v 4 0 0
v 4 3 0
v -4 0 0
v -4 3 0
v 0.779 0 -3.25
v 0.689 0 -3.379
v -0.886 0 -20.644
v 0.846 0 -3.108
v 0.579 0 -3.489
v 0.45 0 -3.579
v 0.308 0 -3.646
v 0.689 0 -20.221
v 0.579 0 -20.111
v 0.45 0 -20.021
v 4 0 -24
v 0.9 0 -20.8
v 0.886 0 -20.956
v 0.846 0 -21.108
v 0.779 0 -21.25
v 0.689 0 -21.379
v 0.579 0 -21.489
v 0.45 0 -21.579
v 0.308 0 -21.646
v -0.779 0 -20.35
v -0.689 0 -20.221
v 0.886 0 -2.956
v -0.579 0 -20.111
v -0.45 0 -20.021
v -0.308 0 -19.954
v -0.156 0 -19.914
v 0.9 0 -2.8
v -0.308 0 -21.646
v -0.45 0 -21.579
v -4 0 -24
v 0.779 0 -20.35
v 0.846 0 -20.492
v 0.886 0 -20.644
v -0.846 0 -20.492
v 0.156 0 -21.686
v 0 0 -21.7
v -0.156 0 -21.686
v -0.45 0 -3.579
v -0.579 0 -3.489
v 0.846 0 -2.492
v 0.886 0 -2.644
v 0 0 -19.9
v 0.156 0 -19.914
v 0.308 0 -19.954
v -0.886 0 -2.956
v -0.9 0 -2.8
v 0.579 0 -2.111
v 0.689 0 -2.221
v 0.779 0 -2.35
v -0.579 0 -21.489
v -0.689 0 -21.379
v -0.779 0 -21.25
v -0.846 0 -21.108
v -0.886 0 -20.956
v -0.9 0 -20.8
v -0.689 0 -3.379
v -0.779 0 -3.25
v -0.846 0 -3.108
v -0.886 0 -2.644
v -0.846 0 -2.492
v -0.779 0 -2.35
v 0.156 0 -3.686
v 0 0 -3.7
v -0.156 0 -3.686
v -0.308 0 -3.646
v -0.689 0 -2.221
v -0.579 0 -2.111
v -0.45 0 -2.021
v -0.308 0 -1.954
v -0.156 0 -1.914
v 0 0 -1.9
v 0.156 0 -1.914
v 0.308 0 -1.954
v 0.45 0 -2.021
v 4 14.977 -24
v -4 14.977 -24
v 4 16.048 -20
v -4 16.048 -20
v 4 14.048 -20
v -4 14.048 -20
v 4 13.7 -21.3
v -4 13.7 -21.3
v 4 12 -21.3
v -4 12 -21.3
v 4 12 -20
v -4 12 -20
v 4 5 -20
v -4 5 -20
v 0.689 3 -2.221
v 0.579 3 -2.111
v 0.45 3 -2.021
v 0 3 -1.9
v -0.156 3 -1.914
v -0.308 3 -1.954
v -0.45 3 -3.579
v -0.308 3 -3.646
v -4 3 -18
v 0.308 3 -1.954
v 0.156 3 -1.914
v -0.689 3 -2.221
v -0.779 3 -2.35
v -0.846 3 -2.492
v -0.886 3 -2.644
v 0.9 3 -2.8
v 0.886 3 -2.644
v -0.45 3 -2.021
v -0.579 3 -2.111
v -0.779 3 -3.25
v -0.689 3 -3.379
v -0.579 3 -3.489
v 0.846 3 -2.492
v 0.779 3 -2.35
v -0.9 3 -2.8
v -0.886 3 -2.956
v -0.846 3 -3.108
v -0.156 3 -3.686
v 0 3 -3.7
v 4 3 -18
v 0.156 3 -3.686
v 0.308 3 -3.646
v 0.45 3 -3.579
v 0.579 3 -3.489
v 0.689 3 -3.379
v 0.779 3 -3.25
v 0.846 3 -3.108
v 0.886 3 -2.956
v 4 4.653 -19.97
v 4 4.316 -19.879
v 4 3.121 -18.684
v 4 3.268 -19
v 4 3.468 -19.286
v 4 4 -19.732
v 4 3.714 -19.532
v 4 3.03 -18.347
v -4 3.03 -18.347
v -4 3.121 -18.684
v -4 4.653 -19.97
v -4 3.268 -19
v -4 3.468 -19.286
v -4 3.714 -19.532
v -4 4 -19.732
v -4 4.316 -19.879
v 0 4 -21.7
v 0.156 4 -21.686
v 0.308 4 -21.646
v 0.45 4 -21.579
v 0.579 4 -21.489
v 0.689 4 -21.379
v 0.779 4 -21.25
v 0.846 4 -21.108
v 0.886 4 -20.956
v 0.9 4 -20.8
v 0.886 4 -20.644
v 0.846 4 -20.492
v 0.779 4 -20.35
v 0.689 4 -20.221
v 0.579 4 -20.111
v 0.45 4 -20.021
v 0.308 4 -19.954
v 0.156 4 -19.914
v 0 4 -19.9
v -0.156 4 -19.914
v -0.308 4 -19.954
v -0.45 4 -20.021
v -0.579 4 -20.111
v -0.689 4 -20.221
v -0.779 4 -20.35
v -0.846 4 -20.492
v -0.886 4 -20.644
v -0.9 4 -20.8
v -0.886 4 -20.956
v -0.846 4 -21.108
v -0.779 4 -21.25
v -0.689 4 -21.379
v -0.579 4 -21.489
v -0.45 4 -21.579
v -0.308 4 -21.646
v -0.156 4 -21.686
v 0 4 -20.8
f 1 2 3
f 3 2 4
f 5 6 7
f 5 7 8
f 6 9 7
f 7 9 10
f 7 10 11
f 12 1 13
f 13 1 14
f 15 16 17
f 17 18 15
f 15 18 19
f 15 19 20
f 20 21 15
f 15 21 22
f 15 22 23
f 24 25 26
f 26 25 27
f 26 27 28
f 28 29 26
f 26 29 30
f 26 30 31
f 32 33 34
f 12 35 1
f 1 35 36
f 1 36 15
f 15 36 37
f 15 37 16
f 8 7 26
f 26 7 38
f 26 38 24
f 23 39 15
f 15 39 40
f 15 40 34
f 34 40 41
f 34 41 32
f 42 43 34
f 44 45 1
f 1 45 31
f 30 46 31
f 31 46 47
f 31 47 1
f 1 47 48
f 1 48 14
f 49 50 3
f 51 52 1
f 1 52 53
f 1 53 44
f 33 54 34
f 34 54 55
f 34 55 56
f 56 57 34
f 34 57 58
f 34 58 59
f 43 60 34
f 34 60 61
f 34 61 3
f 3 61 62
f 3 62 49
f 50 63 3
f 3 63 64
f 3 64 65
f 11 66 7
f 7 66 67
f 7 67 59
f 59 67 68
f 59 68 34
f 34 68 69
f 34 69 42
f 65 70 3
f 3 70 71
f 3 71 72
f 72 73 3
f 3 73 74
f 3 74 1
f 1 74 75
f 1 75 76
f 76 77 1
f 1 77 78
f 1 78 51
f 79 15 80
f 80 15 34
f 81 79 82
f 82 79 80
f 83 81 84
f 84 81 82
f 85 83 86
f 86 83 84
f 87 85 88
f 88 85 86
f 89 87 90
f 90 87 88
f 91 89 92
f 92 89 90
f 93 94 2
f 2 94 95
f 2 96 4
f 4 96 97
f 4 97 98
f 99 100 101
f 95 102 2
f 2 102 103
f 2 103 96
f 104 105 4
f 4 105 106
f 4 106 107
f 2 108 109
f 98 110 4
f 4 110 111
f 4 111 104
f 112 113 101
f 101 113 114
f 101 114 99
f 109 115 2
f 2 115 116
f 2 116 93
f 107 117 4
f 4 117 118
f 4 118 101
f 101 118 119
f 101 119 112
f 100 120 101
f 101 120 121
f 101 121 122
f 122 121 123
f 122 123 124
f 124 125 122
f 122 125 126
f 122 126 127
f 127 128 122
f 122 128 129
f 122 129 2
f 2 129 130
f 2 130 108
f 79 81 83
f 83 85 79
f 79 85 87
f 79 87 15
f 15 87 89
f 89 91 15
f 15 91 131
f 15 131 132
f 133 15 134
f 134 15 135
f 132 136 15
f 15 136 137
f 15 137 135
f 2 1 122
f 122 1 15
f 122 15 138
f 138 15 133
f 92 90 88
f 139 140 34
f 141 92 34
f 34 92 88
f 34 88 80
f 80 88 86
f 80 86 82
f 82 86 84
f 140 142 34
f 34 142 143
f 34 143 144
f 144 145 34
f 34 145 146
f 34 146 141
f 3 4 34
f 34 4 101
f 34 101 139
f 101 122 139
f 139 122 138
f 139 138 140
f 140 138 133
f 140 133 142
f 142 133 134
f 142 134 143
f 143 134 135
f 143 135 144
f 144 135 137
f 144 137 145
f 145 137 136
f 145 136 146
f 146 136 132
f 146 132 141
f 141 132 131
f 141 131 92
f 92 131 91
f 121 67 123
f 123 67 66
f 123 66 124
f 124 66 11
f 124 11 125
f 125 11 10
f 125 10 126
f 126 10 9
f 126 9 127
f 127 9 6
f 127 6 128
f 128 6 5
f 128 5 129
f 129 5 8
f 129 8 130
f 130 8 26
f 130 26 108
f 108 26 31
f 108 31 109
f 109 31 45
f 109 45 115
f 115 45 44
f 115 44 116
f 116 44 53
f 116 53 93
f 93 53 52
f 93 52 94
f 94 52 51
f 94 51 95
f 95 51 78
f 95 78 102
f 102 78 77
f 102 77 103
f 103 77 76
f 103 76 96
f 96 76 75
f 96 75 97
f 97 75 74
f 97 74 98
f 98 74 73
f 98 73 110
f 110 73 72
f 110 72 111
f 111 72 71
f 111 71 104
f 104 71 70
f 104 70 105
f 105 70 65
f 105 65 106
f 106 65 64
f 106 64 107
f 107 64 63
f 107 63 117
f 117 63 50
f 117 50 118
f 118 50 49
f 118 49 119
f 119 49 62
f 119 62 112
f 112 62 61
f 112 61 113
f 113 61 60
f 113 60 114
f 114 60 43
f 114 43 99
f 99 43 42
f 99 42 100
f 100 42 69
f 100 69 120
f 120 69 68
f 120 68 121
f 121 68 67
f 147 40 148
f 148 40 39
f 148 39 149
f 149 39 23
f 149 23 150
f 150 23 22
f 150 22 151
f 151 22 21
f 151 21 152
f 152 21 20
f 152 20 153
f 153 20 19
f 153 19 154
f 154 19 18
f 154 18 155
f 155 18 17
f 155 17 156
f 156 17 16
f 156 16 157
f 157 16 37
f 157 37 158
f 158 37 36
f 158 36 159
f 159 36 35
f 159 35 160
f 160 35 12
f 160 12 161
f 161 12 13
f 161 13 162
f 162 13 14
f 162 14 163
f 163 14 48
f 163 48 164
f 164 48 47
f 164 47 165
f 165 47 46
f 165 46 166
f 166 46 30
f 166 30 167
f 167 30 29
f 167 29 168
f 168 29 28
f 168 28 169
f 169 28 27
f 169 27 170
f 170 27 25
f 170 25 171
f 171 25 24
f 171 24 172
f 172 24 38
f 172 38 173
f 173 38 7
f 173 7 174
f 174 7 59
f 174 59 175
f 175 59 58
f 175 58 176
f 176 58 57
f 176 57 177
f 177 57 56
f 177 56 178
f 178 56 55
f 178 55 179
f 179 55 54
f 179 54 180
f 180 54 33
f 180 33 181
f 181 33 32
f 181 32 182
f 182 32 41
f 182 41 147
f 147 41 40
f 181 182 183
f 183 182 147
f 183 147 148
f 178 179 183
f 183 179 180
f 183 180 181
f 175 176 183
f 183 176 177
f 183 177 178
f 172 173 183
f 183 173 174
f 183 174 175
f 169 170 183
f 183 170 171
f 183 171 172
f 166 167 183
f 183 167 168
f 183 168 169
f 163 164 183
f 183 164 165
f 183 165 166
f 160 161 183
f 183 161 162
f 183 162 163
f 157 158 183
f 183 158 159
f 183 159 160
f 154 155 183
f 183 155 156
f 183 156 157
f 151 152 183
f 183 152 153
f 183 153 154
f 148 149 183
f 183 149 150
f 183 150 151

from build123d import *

# Parameters (mm, degrees)
BOSS_EXTRUDE1_DEPTH = 4
FILLET1_R           = 2
SKETCH2_R           = 0.9
CUT_EXTRUDE1_DEPTH  = 4


with BuildPart() as part:
    # Sketch1 → Boss-Extrude1 (new, symmetric)
    with BuildSketch(Plane(origin=(0, 0, 0), x_dir=(0, 0, -1), z_dir=(1, 0, 0))):
        Polygon((0, 3), (20, 3), (20, 12), (21.3, 12), (21.3, 13.7), (20, 14.04833395), (20, 16.04833395), (24, 14.97653718), (24, 0), (0, 0), align=None)
    extrude(amount=BOSS_EXTRUDE1_DEPTH, both=True)

    # Fillet1
    fillet1_edges = [part.edges().sort_by_distance(p)[0] for p in [
        (0, 3, -20),
    ]]
    fillet(fillet1_edges, radius=FILLET1_R)

    # Sketch2 → Cut-Extrude1 (cut)
    with BuildSketch(Plane.XZ):
        with Locations((0, -20.8)):
            Circle(SKETCH2_R)
        with Locations((0, -2.8)):
            Circle(SKETCH2_R)
    extrude(amount=-CUT_EXTRUDE1_DEPTH, mode=Mode.SUBTRACT)


solid = part.part
